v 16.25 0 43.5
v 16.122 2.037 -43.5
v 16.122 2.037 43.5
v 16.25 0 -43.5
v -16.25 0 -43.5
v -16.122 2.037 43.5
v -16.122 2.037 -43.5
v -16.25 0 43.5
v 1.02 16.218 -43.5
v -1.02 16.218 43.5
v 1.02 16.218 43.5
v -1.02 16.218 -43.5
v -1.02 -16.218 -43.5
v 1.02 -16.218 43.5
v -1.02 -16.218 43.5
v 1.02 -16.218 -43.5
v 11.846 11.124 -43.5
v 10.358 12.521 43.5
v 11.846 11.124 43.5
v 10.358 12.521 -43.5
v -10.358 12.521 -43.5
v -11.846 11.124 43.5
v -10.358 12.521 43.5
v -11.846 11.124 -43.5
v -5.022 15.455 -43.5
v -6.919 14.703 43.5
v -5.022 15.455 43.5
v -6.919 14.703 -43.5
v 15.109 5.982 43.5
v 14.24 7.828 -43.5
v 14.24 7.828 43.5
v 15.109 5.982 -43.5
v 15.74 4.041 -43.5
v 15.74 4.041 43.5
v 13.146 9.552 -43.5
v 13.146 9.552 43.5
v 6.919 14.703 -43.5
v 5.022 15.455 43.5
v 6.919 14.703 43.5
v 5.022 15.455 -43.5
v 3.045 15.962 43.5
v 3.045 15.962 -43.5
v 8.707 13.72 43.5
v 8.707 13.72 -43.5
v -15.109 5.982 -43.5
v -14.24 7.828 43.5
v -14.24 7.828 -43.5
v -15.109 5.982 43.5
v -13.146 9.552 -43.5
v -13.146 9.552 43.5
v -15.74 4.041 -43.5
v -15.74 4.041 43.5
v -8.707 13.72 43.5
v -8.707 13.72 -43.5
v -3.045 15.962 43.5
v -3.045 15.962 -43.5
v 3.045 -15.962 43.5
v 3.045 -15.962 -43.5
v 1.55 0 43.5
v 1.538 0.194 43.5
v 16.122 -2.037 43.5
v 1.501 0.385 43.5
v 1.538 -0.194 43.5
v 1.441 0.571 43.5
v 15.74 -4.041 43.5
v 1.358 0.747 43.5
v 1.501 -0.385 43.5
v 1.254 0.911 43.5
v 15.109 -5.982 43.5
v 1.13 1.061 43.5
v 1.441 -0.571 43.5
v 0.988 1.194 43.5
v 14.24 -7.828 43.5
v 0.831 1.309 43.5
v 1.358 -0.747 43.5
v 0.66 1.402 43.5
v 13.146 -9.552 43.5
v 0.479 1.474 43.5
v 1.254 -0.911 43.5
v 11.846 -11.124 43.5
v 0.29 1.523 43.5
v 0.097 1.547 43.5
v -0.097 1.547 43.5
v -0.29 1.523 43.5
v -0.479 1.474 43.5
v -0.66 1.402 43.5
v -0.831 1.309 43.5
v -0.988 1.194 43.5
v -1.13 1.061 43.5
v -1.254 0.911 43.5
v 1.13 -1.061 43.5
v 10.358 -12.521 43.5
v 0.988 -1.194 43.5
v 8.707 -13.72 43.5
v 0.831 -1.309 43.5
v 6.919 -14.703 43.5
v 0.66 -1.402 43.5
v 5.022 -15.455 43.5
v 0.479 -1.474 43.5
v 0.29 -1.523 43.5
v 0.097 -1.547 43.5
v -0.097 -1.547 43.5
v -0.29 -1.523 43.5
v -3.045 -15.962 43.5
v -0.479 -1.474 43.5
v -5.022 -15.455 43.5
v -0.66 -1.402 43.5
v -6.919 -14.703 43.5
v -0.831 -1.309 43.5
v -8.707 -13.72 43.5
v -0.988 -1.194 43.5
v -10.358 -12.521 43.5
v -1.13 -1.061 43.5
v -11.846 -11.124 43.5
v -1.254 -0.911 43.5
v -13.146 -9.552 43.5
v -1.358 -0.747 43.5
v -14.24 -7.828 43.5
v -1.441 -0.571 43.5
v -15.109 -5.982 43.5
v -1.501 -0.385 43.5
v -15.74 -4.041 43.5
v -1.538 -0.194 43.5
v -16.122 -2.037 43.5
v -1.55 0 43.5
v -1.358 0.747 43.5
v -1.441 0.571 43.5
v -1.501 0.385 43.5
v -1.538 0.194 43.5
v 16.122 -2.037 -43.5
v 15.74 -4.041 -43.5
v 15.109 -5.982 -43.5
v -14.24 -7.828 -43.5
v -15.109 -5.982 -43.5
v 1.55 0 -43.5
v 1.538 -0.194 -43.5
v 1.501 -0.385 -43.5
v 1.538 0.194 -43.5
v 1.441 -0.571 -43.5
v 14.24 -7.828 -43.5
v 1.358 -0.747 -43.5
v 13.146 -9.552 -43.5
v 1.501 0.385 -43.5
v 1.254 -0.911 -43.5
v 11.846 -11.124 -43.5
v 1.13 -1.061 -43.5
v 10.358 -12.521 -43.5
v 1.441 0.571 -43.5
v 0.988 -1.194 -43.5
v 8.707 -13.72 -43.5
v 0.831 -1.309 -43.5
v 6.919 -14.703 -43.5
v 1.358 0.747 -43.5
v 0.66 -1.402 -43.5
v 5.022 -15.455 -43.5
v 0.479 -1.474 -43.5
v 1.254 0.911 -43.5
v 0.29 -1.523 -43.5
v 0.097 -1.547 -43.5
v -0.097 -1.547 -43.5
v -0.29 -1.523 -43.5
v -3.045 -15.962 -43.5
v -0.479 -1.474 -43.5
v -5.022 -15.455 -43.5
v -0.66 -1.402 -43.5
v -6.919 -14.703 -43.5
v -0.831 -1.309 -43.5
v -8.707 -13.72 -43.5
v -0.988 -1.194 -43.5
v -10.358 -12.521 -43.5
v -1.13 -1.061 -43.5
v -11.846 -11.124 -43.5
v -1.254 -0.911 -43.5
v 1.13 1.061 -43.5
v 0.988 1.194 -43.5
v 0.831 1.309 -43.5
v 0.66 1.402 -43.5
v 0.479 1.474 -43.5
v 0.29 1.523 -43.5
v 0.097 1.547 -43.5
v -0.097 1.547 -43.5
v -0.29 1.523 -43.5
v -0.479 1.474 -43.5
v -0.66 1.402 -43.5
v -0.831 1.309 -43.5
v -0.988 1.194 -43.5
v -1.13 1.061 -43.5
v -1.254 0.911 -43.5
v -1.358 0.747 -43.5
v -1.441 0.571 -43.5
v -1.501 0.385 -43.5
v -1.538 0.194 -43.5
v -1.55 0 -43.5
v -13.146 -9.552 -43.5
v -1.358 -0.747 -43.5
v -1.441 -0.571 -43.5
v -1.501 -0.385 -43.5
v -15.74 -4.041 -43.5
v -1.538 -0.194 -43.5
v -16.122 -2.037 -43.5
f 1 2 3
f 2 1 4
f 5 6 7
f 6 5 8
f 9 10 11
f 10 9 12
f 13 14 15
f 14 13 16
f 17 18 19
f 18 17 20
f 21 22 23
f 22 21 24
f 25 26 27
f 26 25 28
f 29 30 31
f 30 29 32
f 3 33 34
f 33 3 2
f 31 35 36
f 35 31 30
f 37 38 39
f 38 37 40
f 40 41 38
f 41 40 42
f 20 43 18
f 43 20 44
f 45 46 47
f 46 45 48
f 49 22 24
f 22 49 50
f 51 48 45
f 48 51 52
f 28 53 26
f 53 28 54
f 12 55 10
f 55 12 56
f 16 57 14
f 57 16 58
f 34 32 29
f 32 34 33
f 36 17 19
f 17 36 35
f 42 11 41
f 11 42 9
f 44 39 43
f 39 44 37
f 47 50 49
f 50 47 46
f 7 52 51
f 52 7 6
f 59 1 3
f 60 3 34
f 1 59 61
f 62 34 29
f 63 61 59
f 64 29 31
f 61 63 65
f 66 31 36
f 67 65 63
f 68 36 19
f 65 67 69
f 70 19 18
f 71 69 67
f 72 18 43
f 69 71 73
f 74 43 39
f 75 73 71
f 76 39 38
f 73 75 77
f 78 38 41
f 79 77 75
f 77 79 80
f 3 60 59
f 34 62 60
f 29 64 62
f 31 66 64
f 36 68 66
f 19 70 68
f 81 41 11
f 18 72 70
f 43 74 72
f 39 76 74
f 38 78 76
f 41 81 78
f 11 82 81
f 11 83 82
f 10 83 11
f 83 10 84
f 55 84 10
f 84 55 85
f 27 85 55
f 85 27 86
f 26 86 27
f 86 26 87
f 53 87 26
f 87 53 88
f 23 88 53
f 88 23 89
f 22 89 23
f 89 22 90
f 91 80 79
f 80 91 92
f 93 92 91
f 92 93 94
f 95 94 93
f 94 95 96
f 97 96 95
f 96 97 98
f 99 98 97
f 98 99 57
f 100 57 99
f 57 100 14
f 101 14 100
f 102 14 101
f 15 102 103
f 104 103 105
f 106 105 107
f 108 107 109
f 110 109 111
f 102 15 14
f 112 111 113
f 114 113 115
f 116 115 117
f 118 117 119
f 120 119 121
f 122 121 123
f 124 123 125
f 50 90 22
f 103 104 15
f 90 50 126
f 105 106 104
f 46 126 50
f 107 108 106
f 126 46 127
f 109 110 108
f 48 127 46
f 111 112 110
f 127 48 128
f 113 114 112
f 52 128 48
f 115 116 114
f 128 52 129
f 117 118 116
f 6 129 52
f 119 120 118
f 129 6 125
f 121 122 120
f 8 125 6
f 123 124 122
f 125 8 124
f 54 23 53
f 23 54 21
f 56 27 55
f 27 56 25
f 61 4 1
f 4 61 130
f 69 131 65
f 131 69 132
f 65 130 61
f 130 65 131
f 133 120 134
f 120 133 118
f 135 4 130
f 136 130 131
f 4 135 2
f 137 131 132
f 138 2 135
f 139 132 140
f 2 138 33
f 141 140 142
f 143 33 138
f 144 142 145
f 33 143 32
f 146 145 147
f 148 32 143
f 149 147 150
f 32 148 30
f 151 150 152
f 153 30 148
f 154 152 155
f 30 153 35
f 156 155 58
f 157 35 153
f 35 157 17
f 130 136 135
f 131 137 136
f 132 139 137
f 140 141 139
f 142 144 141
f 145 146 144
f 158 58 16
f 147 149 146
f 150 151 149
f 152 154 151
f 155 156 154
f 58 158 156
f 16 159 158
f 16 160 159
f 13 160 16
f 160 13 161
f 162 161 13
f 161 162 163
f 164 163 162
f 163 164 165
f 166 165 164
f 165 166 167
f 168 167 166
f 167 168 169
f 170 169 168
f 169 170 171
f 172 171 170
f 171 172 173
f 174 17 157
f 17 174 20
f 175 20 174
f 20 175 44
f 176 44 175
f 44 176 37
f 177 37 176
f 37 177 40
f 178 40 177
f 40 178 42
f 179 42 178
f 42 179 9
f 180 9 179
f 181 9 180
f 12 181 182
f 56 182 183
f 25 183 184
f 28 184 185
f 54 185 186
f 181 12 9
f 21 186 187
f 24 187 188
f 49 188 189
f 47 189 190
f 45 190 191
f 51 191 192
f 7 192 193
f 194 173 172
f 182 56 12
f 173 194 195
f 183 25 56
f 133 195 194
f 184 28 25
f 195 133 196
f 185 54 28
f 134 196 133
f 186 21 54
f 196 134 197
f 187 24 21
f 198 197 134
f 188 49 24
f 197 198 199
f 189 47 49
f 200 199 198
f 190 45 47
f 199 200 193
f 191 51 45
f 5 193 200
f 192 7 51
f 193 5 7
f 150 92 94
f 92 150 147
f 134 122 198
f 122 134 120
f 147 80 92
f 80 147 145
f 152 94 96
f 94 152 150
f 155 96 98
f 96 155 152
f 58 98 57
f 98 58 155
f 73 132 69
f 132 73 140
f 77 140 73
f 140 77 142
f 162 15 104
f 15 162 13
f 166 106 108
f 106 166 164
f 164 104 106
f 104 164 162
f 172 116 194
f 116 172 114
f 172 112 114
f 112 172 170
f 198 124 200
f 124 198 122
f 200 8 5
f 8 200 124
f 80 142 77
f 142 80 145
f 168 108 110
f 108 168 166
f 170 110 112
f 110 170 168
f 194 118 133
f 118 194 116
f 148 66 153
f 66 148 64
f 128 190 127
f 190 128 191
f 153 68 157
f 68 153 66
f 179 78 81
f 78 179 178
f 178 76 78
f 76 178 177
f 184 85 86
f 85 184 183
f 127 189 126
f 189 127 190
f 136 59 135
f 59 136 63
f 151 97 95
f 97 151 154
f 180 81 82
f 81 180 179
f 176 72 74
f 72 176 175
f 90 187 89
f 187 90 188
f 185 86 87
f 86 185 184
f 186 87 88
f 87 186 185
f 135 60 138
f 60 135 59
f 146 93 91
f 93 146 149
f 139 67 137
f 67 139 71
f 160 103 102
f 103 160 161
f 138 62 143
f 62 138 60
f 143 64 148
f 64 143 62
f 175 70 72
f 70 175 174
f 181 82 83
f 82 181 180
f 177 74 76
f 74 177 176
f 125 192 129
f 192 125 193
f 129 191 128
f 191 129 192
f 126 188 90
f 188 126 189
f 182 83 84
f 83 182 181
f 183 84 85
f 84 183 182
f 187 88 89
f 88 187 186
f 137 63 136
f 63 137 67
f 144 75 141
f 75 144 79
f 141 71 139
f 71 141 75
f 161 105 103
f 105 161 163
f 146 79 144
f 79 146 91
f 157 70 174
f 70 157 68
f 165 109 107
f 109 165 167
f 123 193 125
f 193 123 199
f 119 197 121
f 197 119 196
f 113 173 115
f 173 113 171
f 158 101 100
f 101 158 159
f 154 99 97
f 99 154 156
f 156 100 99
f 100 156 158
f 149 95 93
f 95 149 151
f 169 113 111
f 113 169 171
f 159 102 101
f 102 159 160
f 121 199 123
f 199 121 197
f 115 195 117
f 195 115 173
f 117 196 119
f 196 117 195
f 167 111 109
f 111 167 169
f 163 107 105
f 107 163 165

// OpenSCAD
$fn = 50;


difference() {
	union() {
		translate(v = [0, 0, -43.5000000000]) {
			cylinder(h = 87, r = 16.2500000000);
		}
	}
	union() {
		translate(v = [0, 0, -100.0000000000]) {
			cylinder(h = 200, r = 1.5500000000);
		}
	}
}
